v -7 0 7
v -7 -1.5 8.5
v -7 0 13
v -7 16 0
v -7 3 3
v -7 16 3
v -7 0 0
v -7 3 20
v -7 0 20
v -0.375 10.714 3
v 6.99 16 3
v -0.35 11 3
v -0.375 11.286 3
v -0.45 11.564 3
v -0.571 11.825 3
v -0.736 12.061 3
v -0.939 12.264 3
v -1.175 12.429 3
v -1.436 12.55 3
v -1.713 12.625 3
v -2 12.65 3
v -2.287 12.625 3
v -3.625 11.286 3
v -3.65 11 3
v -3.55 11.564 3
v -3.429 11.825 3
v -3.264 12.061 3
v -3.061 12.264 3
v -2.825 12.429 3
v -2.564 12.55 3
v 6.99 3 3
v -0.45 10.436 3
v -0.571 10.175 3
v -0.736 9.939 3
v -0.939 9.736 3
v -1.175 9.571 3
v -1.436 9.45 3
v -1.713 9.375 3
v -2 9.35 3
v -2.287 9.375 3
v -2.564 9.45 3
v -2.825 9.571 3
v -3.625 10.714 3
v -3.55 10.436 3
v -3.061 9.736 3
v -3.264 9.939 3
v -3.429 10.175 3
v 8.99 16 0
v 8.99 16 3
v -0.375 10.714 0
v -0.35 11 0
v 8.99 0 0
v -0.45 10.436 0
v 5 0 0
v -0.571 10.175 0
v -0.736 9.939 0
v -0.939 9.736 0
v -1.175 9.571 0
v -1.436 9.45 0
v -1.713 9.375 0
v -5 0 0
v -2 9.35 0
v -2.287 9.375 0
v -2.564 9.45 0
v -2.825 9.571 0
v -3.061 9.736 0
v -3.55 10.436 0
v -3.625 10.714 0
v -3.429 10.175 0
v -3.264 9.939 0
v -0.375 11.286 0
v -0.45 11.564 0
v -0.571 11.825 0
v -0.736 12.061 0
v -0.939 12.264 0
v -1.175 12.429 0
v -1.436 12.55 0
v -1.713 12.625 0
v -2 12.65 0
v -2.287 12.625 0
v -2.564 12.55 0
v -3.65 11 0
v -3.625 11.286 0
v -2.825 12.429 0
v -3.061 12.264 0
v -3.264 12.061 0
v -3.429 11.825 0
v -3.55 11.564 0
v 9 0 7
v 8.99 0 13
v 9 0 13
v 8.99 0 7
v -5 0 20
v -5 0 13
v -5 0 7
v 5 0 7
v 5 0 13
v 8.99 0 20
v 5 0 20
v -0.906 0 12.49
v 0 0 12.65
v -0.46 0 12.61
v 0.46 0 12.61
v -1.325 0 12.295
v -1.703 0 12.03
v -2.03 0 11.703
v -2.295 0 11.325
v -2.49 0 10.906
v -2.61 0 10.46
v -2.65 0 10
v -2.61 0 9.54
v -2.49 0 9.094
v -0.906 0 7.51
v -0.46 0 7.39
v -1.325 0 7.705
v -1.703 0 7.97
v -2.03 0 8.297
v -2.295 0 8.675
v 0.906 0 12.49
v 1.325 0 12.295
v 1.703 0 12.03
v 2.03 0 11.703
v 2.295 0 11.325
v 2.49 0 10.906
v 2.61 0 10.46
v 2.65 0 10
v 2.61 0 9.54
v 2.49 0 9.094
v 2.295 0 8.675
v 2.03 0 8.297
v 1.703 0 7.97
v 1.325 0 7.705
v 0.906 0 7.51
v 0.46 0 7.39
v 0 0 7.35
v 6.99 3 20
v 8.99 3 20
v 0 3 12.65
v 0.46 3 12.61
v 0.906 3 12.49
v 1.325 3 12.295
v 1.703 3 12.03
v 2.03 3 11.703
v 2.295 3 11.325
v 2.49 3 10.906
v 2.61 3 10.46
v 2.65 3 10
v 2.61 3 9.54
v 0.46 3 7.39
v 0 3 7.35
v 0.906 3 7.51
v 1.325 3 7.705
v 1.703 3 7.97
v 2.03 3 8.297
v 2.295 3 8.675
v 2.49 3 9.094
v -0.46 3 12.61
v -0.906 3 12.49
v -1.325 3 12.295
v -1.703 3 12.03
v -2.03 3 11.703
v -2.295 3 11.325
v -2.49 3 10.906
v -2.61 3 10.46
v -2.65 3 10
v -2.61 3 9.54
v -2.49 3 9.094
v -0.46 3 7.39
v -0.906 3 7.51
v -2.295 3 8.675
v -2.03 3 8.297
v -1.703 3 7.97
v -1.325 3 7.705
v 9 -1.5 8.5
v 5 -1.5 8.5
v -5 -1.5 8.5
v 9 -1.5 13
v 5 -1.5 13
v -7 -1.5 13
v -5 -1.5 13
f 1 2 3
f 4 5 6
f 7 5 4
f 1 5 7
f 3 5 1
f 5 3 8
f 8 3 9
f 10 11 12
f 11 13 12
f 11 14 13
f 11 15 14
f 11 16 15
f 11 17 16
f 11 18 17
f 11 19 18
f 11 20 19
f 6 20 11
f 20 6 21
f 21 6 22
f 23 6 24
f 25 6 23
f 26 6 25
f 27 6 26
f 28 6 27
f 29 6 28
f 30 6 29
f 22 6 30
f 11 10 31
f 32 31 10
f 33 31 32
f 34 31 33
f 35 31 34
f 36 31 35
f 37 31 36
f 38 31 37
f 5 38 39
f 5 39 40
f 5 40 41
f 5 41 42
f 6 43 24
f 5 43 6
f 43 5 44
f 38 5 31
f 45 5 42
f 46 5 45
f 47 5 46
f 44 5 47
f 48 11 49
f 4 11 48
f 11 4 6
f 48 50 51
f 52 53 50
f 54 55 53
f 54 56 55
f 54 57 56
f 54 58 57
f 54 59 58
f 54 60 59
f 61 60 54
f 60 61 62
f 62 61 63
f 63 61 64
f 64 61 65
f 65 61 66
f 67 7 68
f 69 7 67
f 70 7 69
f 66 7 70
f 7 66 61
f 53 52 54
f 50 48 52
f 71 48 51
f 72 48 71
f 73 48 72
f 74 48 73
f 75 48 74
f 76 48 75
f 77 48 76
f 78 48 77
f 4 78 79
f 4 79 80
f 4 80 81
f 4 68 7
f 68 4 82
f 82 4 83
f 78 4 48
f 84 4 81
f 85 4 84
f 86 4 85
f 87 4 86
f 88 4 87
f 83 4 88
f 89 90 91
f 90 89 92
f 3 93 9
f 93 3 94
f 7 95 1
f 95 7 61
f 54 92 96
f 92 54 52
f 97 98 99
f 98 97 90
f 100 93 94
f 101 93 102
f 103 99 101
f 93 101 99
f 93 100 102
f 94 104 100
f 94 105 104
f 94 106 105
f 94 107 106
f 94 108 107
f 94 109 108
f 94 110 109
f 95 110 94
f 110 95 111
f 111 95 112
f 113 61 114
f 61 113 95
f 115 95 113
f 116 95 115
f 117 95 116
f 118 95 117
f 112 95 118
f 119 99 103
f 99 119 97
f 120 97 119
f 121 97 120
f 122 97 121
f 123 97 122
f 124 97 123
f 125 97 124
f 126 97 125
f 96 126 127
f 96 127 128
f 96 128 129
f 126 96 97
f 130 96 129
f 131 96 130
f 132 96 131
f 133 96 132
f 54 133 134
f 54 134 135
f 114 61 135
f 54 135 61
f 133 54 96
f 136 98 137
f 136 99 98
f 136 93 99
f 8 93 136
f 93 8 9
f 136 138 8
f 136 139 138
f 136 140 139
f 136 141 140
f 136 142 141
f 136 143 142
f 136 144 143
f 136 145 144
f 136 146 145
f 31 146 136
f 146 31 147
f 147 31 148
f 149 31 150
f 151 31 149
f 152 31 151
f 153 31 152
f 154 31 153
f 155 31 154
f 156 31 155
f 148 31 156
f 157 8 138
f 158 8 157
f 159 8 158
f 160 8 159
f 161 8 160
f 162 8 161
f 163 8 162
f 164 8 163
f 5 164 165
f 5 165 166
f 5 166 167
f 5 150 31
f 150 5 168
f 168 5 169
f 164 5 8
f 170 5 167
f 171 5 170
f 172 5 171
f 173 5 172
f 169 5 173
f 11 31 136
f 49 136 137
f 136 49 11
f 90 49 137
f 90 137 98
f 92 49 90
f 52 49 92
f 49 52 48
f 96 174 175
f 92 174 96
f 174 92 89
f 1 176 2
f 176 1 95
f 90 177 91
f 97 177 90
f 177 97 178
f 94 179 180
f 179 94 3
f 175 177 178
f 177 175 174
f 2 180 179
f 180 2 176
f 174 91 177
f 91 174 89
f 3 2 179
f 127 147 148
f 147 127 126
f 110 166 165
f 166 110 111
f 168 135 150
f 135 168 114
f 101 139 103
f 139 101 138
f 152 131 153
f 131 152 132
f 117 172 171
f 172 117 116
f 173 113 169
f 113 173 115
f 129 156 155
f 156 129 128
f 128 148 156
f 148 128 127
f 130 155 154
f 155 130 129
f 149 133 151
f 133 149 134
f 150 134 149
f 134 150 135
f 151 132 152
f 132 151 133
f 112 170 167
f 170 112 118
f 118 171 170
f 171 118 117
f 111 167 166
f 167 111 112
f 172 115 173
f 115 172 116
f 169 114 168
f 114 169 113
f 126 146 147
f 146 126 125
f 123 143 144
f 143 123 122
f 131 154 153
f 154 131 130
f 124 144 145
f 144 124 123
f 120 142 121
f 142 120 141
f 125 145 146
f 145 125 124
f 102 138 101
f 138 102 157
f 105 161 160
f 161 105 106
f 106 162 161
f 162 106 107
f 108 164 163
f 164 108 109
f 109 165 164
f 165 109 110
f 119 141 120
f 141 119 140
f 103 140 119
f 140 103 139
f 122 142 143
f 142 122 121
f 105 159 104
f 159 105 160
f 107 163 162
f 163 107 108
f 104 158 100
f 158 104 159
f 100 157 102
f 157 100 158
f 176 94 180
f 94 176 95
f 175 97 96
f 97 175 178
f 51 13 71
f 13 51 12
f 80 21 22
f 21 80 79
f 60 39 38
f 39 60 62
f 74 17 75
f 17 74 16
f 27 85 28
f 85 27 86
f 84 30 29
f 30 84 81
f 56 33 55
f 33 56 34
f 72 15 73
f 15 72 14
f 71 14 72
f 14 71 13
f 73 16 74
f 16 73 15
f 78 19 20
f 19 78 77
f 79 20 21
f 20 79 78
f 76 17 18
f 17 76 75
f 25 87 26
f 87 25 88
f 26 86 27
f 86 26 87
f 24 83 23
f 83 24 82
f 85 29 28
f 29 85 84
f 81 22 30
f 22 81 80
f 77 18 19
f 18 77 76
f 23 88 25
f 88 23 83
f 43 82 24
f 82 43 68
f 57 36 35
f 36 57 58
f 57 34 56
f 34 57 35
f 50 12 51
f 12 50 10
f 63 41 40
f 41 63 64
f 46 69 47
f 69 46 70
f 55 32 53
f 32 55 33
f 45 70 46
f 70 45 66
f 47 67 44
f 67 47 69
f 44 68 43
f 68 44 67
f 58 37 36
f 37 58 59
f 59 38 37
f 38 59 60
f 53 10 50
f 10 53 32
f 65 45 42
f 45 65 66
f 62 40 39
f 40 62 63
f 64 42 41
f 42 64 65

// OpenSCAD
//3D printer bed support bracket for 2020 extrusion
//2017, John Stäck (john@stack.se)
//Licensed under Creative Commons Attribution Share-Alike (CC BY-SA 3.0)

$fn=36;
e=0.01;

endplate_thickness=2;
bracket_thickness=3;

rail_height=20; //2020 rail
slot_width=6;
notch_depth=1.5;
rail_screw_diameter=5.3; //M5 + margin

slot_nut_length=10;

bed_screw_diameter=3.3; //M3

// "Big bracket" with center hole in bracket
/*
bracket_length=20;
bracket_width=20;
bed_screw_inset_y = bracket_width/2;
bed_screw_inset_x = bracket_length/2;
*/

//Smaller bracket with hole closer to corner, for thumbscrews
bracket_length=14;
bracket_width=16;
bed_screw_inset_y = 5;
bed_screw_inset_x = 5;


difference() {
    union() {
        
       //Base parts of bracket
       translate([-bracket_length/2,0,0]) {
           cube([bracket_length, bracket_width, bracket_thickness]); 
           cube([bracket_length, bracket_thickness, rail_height]);

       }
       
       //Endplate
           translate([bracket_length/2-e, 0, 0]) hull() {
               cube([endplate_thickness, bracket_width, bracket_thickness]);
               cube([endplate_thickness, bracket_thickness, rail_height]);
       }       
       
       //Notch into rail
       notch_points=[[0,-slot_width/2],[notch_depth,-slot_width/2+notch_depth],[notch_depth,slot_width/2],[0,slot_width/2]];
       notch_path=[[0,1,2,3,0]];
       
       translate([bracket_length/2+endplate_thickness,0,rail_height/2]) rotate([90,0,-90])  linear_extrude(height=bracket_length+endplate_thickness) polygon(points=notch_points, paths=notch_path, convexity=2);
       
    }
    
    union() {
        //Holes for mounting bolts to rail
            translate([0, -e, rail_height/2]) rotate([-90,0,0]) cylinder(d=rail_screw_diameter, h=bracket_thickness+2*e);
        
        //Cutout in notch for slot nuts
            translate([-slot_nut_length/2,-notch_depth-e,0]) cube([slot_nut_length,notch_depth+e,rail_height]);
        
        
        //Bed screw hole
        translate([bed_screw_inset_x-bracket_length/2,bracket_width-bed_screw_inset_y, -e]) cylinder(d=bed_screw_diameter, h=bracket_thickness+2*e);
        
    }
}
